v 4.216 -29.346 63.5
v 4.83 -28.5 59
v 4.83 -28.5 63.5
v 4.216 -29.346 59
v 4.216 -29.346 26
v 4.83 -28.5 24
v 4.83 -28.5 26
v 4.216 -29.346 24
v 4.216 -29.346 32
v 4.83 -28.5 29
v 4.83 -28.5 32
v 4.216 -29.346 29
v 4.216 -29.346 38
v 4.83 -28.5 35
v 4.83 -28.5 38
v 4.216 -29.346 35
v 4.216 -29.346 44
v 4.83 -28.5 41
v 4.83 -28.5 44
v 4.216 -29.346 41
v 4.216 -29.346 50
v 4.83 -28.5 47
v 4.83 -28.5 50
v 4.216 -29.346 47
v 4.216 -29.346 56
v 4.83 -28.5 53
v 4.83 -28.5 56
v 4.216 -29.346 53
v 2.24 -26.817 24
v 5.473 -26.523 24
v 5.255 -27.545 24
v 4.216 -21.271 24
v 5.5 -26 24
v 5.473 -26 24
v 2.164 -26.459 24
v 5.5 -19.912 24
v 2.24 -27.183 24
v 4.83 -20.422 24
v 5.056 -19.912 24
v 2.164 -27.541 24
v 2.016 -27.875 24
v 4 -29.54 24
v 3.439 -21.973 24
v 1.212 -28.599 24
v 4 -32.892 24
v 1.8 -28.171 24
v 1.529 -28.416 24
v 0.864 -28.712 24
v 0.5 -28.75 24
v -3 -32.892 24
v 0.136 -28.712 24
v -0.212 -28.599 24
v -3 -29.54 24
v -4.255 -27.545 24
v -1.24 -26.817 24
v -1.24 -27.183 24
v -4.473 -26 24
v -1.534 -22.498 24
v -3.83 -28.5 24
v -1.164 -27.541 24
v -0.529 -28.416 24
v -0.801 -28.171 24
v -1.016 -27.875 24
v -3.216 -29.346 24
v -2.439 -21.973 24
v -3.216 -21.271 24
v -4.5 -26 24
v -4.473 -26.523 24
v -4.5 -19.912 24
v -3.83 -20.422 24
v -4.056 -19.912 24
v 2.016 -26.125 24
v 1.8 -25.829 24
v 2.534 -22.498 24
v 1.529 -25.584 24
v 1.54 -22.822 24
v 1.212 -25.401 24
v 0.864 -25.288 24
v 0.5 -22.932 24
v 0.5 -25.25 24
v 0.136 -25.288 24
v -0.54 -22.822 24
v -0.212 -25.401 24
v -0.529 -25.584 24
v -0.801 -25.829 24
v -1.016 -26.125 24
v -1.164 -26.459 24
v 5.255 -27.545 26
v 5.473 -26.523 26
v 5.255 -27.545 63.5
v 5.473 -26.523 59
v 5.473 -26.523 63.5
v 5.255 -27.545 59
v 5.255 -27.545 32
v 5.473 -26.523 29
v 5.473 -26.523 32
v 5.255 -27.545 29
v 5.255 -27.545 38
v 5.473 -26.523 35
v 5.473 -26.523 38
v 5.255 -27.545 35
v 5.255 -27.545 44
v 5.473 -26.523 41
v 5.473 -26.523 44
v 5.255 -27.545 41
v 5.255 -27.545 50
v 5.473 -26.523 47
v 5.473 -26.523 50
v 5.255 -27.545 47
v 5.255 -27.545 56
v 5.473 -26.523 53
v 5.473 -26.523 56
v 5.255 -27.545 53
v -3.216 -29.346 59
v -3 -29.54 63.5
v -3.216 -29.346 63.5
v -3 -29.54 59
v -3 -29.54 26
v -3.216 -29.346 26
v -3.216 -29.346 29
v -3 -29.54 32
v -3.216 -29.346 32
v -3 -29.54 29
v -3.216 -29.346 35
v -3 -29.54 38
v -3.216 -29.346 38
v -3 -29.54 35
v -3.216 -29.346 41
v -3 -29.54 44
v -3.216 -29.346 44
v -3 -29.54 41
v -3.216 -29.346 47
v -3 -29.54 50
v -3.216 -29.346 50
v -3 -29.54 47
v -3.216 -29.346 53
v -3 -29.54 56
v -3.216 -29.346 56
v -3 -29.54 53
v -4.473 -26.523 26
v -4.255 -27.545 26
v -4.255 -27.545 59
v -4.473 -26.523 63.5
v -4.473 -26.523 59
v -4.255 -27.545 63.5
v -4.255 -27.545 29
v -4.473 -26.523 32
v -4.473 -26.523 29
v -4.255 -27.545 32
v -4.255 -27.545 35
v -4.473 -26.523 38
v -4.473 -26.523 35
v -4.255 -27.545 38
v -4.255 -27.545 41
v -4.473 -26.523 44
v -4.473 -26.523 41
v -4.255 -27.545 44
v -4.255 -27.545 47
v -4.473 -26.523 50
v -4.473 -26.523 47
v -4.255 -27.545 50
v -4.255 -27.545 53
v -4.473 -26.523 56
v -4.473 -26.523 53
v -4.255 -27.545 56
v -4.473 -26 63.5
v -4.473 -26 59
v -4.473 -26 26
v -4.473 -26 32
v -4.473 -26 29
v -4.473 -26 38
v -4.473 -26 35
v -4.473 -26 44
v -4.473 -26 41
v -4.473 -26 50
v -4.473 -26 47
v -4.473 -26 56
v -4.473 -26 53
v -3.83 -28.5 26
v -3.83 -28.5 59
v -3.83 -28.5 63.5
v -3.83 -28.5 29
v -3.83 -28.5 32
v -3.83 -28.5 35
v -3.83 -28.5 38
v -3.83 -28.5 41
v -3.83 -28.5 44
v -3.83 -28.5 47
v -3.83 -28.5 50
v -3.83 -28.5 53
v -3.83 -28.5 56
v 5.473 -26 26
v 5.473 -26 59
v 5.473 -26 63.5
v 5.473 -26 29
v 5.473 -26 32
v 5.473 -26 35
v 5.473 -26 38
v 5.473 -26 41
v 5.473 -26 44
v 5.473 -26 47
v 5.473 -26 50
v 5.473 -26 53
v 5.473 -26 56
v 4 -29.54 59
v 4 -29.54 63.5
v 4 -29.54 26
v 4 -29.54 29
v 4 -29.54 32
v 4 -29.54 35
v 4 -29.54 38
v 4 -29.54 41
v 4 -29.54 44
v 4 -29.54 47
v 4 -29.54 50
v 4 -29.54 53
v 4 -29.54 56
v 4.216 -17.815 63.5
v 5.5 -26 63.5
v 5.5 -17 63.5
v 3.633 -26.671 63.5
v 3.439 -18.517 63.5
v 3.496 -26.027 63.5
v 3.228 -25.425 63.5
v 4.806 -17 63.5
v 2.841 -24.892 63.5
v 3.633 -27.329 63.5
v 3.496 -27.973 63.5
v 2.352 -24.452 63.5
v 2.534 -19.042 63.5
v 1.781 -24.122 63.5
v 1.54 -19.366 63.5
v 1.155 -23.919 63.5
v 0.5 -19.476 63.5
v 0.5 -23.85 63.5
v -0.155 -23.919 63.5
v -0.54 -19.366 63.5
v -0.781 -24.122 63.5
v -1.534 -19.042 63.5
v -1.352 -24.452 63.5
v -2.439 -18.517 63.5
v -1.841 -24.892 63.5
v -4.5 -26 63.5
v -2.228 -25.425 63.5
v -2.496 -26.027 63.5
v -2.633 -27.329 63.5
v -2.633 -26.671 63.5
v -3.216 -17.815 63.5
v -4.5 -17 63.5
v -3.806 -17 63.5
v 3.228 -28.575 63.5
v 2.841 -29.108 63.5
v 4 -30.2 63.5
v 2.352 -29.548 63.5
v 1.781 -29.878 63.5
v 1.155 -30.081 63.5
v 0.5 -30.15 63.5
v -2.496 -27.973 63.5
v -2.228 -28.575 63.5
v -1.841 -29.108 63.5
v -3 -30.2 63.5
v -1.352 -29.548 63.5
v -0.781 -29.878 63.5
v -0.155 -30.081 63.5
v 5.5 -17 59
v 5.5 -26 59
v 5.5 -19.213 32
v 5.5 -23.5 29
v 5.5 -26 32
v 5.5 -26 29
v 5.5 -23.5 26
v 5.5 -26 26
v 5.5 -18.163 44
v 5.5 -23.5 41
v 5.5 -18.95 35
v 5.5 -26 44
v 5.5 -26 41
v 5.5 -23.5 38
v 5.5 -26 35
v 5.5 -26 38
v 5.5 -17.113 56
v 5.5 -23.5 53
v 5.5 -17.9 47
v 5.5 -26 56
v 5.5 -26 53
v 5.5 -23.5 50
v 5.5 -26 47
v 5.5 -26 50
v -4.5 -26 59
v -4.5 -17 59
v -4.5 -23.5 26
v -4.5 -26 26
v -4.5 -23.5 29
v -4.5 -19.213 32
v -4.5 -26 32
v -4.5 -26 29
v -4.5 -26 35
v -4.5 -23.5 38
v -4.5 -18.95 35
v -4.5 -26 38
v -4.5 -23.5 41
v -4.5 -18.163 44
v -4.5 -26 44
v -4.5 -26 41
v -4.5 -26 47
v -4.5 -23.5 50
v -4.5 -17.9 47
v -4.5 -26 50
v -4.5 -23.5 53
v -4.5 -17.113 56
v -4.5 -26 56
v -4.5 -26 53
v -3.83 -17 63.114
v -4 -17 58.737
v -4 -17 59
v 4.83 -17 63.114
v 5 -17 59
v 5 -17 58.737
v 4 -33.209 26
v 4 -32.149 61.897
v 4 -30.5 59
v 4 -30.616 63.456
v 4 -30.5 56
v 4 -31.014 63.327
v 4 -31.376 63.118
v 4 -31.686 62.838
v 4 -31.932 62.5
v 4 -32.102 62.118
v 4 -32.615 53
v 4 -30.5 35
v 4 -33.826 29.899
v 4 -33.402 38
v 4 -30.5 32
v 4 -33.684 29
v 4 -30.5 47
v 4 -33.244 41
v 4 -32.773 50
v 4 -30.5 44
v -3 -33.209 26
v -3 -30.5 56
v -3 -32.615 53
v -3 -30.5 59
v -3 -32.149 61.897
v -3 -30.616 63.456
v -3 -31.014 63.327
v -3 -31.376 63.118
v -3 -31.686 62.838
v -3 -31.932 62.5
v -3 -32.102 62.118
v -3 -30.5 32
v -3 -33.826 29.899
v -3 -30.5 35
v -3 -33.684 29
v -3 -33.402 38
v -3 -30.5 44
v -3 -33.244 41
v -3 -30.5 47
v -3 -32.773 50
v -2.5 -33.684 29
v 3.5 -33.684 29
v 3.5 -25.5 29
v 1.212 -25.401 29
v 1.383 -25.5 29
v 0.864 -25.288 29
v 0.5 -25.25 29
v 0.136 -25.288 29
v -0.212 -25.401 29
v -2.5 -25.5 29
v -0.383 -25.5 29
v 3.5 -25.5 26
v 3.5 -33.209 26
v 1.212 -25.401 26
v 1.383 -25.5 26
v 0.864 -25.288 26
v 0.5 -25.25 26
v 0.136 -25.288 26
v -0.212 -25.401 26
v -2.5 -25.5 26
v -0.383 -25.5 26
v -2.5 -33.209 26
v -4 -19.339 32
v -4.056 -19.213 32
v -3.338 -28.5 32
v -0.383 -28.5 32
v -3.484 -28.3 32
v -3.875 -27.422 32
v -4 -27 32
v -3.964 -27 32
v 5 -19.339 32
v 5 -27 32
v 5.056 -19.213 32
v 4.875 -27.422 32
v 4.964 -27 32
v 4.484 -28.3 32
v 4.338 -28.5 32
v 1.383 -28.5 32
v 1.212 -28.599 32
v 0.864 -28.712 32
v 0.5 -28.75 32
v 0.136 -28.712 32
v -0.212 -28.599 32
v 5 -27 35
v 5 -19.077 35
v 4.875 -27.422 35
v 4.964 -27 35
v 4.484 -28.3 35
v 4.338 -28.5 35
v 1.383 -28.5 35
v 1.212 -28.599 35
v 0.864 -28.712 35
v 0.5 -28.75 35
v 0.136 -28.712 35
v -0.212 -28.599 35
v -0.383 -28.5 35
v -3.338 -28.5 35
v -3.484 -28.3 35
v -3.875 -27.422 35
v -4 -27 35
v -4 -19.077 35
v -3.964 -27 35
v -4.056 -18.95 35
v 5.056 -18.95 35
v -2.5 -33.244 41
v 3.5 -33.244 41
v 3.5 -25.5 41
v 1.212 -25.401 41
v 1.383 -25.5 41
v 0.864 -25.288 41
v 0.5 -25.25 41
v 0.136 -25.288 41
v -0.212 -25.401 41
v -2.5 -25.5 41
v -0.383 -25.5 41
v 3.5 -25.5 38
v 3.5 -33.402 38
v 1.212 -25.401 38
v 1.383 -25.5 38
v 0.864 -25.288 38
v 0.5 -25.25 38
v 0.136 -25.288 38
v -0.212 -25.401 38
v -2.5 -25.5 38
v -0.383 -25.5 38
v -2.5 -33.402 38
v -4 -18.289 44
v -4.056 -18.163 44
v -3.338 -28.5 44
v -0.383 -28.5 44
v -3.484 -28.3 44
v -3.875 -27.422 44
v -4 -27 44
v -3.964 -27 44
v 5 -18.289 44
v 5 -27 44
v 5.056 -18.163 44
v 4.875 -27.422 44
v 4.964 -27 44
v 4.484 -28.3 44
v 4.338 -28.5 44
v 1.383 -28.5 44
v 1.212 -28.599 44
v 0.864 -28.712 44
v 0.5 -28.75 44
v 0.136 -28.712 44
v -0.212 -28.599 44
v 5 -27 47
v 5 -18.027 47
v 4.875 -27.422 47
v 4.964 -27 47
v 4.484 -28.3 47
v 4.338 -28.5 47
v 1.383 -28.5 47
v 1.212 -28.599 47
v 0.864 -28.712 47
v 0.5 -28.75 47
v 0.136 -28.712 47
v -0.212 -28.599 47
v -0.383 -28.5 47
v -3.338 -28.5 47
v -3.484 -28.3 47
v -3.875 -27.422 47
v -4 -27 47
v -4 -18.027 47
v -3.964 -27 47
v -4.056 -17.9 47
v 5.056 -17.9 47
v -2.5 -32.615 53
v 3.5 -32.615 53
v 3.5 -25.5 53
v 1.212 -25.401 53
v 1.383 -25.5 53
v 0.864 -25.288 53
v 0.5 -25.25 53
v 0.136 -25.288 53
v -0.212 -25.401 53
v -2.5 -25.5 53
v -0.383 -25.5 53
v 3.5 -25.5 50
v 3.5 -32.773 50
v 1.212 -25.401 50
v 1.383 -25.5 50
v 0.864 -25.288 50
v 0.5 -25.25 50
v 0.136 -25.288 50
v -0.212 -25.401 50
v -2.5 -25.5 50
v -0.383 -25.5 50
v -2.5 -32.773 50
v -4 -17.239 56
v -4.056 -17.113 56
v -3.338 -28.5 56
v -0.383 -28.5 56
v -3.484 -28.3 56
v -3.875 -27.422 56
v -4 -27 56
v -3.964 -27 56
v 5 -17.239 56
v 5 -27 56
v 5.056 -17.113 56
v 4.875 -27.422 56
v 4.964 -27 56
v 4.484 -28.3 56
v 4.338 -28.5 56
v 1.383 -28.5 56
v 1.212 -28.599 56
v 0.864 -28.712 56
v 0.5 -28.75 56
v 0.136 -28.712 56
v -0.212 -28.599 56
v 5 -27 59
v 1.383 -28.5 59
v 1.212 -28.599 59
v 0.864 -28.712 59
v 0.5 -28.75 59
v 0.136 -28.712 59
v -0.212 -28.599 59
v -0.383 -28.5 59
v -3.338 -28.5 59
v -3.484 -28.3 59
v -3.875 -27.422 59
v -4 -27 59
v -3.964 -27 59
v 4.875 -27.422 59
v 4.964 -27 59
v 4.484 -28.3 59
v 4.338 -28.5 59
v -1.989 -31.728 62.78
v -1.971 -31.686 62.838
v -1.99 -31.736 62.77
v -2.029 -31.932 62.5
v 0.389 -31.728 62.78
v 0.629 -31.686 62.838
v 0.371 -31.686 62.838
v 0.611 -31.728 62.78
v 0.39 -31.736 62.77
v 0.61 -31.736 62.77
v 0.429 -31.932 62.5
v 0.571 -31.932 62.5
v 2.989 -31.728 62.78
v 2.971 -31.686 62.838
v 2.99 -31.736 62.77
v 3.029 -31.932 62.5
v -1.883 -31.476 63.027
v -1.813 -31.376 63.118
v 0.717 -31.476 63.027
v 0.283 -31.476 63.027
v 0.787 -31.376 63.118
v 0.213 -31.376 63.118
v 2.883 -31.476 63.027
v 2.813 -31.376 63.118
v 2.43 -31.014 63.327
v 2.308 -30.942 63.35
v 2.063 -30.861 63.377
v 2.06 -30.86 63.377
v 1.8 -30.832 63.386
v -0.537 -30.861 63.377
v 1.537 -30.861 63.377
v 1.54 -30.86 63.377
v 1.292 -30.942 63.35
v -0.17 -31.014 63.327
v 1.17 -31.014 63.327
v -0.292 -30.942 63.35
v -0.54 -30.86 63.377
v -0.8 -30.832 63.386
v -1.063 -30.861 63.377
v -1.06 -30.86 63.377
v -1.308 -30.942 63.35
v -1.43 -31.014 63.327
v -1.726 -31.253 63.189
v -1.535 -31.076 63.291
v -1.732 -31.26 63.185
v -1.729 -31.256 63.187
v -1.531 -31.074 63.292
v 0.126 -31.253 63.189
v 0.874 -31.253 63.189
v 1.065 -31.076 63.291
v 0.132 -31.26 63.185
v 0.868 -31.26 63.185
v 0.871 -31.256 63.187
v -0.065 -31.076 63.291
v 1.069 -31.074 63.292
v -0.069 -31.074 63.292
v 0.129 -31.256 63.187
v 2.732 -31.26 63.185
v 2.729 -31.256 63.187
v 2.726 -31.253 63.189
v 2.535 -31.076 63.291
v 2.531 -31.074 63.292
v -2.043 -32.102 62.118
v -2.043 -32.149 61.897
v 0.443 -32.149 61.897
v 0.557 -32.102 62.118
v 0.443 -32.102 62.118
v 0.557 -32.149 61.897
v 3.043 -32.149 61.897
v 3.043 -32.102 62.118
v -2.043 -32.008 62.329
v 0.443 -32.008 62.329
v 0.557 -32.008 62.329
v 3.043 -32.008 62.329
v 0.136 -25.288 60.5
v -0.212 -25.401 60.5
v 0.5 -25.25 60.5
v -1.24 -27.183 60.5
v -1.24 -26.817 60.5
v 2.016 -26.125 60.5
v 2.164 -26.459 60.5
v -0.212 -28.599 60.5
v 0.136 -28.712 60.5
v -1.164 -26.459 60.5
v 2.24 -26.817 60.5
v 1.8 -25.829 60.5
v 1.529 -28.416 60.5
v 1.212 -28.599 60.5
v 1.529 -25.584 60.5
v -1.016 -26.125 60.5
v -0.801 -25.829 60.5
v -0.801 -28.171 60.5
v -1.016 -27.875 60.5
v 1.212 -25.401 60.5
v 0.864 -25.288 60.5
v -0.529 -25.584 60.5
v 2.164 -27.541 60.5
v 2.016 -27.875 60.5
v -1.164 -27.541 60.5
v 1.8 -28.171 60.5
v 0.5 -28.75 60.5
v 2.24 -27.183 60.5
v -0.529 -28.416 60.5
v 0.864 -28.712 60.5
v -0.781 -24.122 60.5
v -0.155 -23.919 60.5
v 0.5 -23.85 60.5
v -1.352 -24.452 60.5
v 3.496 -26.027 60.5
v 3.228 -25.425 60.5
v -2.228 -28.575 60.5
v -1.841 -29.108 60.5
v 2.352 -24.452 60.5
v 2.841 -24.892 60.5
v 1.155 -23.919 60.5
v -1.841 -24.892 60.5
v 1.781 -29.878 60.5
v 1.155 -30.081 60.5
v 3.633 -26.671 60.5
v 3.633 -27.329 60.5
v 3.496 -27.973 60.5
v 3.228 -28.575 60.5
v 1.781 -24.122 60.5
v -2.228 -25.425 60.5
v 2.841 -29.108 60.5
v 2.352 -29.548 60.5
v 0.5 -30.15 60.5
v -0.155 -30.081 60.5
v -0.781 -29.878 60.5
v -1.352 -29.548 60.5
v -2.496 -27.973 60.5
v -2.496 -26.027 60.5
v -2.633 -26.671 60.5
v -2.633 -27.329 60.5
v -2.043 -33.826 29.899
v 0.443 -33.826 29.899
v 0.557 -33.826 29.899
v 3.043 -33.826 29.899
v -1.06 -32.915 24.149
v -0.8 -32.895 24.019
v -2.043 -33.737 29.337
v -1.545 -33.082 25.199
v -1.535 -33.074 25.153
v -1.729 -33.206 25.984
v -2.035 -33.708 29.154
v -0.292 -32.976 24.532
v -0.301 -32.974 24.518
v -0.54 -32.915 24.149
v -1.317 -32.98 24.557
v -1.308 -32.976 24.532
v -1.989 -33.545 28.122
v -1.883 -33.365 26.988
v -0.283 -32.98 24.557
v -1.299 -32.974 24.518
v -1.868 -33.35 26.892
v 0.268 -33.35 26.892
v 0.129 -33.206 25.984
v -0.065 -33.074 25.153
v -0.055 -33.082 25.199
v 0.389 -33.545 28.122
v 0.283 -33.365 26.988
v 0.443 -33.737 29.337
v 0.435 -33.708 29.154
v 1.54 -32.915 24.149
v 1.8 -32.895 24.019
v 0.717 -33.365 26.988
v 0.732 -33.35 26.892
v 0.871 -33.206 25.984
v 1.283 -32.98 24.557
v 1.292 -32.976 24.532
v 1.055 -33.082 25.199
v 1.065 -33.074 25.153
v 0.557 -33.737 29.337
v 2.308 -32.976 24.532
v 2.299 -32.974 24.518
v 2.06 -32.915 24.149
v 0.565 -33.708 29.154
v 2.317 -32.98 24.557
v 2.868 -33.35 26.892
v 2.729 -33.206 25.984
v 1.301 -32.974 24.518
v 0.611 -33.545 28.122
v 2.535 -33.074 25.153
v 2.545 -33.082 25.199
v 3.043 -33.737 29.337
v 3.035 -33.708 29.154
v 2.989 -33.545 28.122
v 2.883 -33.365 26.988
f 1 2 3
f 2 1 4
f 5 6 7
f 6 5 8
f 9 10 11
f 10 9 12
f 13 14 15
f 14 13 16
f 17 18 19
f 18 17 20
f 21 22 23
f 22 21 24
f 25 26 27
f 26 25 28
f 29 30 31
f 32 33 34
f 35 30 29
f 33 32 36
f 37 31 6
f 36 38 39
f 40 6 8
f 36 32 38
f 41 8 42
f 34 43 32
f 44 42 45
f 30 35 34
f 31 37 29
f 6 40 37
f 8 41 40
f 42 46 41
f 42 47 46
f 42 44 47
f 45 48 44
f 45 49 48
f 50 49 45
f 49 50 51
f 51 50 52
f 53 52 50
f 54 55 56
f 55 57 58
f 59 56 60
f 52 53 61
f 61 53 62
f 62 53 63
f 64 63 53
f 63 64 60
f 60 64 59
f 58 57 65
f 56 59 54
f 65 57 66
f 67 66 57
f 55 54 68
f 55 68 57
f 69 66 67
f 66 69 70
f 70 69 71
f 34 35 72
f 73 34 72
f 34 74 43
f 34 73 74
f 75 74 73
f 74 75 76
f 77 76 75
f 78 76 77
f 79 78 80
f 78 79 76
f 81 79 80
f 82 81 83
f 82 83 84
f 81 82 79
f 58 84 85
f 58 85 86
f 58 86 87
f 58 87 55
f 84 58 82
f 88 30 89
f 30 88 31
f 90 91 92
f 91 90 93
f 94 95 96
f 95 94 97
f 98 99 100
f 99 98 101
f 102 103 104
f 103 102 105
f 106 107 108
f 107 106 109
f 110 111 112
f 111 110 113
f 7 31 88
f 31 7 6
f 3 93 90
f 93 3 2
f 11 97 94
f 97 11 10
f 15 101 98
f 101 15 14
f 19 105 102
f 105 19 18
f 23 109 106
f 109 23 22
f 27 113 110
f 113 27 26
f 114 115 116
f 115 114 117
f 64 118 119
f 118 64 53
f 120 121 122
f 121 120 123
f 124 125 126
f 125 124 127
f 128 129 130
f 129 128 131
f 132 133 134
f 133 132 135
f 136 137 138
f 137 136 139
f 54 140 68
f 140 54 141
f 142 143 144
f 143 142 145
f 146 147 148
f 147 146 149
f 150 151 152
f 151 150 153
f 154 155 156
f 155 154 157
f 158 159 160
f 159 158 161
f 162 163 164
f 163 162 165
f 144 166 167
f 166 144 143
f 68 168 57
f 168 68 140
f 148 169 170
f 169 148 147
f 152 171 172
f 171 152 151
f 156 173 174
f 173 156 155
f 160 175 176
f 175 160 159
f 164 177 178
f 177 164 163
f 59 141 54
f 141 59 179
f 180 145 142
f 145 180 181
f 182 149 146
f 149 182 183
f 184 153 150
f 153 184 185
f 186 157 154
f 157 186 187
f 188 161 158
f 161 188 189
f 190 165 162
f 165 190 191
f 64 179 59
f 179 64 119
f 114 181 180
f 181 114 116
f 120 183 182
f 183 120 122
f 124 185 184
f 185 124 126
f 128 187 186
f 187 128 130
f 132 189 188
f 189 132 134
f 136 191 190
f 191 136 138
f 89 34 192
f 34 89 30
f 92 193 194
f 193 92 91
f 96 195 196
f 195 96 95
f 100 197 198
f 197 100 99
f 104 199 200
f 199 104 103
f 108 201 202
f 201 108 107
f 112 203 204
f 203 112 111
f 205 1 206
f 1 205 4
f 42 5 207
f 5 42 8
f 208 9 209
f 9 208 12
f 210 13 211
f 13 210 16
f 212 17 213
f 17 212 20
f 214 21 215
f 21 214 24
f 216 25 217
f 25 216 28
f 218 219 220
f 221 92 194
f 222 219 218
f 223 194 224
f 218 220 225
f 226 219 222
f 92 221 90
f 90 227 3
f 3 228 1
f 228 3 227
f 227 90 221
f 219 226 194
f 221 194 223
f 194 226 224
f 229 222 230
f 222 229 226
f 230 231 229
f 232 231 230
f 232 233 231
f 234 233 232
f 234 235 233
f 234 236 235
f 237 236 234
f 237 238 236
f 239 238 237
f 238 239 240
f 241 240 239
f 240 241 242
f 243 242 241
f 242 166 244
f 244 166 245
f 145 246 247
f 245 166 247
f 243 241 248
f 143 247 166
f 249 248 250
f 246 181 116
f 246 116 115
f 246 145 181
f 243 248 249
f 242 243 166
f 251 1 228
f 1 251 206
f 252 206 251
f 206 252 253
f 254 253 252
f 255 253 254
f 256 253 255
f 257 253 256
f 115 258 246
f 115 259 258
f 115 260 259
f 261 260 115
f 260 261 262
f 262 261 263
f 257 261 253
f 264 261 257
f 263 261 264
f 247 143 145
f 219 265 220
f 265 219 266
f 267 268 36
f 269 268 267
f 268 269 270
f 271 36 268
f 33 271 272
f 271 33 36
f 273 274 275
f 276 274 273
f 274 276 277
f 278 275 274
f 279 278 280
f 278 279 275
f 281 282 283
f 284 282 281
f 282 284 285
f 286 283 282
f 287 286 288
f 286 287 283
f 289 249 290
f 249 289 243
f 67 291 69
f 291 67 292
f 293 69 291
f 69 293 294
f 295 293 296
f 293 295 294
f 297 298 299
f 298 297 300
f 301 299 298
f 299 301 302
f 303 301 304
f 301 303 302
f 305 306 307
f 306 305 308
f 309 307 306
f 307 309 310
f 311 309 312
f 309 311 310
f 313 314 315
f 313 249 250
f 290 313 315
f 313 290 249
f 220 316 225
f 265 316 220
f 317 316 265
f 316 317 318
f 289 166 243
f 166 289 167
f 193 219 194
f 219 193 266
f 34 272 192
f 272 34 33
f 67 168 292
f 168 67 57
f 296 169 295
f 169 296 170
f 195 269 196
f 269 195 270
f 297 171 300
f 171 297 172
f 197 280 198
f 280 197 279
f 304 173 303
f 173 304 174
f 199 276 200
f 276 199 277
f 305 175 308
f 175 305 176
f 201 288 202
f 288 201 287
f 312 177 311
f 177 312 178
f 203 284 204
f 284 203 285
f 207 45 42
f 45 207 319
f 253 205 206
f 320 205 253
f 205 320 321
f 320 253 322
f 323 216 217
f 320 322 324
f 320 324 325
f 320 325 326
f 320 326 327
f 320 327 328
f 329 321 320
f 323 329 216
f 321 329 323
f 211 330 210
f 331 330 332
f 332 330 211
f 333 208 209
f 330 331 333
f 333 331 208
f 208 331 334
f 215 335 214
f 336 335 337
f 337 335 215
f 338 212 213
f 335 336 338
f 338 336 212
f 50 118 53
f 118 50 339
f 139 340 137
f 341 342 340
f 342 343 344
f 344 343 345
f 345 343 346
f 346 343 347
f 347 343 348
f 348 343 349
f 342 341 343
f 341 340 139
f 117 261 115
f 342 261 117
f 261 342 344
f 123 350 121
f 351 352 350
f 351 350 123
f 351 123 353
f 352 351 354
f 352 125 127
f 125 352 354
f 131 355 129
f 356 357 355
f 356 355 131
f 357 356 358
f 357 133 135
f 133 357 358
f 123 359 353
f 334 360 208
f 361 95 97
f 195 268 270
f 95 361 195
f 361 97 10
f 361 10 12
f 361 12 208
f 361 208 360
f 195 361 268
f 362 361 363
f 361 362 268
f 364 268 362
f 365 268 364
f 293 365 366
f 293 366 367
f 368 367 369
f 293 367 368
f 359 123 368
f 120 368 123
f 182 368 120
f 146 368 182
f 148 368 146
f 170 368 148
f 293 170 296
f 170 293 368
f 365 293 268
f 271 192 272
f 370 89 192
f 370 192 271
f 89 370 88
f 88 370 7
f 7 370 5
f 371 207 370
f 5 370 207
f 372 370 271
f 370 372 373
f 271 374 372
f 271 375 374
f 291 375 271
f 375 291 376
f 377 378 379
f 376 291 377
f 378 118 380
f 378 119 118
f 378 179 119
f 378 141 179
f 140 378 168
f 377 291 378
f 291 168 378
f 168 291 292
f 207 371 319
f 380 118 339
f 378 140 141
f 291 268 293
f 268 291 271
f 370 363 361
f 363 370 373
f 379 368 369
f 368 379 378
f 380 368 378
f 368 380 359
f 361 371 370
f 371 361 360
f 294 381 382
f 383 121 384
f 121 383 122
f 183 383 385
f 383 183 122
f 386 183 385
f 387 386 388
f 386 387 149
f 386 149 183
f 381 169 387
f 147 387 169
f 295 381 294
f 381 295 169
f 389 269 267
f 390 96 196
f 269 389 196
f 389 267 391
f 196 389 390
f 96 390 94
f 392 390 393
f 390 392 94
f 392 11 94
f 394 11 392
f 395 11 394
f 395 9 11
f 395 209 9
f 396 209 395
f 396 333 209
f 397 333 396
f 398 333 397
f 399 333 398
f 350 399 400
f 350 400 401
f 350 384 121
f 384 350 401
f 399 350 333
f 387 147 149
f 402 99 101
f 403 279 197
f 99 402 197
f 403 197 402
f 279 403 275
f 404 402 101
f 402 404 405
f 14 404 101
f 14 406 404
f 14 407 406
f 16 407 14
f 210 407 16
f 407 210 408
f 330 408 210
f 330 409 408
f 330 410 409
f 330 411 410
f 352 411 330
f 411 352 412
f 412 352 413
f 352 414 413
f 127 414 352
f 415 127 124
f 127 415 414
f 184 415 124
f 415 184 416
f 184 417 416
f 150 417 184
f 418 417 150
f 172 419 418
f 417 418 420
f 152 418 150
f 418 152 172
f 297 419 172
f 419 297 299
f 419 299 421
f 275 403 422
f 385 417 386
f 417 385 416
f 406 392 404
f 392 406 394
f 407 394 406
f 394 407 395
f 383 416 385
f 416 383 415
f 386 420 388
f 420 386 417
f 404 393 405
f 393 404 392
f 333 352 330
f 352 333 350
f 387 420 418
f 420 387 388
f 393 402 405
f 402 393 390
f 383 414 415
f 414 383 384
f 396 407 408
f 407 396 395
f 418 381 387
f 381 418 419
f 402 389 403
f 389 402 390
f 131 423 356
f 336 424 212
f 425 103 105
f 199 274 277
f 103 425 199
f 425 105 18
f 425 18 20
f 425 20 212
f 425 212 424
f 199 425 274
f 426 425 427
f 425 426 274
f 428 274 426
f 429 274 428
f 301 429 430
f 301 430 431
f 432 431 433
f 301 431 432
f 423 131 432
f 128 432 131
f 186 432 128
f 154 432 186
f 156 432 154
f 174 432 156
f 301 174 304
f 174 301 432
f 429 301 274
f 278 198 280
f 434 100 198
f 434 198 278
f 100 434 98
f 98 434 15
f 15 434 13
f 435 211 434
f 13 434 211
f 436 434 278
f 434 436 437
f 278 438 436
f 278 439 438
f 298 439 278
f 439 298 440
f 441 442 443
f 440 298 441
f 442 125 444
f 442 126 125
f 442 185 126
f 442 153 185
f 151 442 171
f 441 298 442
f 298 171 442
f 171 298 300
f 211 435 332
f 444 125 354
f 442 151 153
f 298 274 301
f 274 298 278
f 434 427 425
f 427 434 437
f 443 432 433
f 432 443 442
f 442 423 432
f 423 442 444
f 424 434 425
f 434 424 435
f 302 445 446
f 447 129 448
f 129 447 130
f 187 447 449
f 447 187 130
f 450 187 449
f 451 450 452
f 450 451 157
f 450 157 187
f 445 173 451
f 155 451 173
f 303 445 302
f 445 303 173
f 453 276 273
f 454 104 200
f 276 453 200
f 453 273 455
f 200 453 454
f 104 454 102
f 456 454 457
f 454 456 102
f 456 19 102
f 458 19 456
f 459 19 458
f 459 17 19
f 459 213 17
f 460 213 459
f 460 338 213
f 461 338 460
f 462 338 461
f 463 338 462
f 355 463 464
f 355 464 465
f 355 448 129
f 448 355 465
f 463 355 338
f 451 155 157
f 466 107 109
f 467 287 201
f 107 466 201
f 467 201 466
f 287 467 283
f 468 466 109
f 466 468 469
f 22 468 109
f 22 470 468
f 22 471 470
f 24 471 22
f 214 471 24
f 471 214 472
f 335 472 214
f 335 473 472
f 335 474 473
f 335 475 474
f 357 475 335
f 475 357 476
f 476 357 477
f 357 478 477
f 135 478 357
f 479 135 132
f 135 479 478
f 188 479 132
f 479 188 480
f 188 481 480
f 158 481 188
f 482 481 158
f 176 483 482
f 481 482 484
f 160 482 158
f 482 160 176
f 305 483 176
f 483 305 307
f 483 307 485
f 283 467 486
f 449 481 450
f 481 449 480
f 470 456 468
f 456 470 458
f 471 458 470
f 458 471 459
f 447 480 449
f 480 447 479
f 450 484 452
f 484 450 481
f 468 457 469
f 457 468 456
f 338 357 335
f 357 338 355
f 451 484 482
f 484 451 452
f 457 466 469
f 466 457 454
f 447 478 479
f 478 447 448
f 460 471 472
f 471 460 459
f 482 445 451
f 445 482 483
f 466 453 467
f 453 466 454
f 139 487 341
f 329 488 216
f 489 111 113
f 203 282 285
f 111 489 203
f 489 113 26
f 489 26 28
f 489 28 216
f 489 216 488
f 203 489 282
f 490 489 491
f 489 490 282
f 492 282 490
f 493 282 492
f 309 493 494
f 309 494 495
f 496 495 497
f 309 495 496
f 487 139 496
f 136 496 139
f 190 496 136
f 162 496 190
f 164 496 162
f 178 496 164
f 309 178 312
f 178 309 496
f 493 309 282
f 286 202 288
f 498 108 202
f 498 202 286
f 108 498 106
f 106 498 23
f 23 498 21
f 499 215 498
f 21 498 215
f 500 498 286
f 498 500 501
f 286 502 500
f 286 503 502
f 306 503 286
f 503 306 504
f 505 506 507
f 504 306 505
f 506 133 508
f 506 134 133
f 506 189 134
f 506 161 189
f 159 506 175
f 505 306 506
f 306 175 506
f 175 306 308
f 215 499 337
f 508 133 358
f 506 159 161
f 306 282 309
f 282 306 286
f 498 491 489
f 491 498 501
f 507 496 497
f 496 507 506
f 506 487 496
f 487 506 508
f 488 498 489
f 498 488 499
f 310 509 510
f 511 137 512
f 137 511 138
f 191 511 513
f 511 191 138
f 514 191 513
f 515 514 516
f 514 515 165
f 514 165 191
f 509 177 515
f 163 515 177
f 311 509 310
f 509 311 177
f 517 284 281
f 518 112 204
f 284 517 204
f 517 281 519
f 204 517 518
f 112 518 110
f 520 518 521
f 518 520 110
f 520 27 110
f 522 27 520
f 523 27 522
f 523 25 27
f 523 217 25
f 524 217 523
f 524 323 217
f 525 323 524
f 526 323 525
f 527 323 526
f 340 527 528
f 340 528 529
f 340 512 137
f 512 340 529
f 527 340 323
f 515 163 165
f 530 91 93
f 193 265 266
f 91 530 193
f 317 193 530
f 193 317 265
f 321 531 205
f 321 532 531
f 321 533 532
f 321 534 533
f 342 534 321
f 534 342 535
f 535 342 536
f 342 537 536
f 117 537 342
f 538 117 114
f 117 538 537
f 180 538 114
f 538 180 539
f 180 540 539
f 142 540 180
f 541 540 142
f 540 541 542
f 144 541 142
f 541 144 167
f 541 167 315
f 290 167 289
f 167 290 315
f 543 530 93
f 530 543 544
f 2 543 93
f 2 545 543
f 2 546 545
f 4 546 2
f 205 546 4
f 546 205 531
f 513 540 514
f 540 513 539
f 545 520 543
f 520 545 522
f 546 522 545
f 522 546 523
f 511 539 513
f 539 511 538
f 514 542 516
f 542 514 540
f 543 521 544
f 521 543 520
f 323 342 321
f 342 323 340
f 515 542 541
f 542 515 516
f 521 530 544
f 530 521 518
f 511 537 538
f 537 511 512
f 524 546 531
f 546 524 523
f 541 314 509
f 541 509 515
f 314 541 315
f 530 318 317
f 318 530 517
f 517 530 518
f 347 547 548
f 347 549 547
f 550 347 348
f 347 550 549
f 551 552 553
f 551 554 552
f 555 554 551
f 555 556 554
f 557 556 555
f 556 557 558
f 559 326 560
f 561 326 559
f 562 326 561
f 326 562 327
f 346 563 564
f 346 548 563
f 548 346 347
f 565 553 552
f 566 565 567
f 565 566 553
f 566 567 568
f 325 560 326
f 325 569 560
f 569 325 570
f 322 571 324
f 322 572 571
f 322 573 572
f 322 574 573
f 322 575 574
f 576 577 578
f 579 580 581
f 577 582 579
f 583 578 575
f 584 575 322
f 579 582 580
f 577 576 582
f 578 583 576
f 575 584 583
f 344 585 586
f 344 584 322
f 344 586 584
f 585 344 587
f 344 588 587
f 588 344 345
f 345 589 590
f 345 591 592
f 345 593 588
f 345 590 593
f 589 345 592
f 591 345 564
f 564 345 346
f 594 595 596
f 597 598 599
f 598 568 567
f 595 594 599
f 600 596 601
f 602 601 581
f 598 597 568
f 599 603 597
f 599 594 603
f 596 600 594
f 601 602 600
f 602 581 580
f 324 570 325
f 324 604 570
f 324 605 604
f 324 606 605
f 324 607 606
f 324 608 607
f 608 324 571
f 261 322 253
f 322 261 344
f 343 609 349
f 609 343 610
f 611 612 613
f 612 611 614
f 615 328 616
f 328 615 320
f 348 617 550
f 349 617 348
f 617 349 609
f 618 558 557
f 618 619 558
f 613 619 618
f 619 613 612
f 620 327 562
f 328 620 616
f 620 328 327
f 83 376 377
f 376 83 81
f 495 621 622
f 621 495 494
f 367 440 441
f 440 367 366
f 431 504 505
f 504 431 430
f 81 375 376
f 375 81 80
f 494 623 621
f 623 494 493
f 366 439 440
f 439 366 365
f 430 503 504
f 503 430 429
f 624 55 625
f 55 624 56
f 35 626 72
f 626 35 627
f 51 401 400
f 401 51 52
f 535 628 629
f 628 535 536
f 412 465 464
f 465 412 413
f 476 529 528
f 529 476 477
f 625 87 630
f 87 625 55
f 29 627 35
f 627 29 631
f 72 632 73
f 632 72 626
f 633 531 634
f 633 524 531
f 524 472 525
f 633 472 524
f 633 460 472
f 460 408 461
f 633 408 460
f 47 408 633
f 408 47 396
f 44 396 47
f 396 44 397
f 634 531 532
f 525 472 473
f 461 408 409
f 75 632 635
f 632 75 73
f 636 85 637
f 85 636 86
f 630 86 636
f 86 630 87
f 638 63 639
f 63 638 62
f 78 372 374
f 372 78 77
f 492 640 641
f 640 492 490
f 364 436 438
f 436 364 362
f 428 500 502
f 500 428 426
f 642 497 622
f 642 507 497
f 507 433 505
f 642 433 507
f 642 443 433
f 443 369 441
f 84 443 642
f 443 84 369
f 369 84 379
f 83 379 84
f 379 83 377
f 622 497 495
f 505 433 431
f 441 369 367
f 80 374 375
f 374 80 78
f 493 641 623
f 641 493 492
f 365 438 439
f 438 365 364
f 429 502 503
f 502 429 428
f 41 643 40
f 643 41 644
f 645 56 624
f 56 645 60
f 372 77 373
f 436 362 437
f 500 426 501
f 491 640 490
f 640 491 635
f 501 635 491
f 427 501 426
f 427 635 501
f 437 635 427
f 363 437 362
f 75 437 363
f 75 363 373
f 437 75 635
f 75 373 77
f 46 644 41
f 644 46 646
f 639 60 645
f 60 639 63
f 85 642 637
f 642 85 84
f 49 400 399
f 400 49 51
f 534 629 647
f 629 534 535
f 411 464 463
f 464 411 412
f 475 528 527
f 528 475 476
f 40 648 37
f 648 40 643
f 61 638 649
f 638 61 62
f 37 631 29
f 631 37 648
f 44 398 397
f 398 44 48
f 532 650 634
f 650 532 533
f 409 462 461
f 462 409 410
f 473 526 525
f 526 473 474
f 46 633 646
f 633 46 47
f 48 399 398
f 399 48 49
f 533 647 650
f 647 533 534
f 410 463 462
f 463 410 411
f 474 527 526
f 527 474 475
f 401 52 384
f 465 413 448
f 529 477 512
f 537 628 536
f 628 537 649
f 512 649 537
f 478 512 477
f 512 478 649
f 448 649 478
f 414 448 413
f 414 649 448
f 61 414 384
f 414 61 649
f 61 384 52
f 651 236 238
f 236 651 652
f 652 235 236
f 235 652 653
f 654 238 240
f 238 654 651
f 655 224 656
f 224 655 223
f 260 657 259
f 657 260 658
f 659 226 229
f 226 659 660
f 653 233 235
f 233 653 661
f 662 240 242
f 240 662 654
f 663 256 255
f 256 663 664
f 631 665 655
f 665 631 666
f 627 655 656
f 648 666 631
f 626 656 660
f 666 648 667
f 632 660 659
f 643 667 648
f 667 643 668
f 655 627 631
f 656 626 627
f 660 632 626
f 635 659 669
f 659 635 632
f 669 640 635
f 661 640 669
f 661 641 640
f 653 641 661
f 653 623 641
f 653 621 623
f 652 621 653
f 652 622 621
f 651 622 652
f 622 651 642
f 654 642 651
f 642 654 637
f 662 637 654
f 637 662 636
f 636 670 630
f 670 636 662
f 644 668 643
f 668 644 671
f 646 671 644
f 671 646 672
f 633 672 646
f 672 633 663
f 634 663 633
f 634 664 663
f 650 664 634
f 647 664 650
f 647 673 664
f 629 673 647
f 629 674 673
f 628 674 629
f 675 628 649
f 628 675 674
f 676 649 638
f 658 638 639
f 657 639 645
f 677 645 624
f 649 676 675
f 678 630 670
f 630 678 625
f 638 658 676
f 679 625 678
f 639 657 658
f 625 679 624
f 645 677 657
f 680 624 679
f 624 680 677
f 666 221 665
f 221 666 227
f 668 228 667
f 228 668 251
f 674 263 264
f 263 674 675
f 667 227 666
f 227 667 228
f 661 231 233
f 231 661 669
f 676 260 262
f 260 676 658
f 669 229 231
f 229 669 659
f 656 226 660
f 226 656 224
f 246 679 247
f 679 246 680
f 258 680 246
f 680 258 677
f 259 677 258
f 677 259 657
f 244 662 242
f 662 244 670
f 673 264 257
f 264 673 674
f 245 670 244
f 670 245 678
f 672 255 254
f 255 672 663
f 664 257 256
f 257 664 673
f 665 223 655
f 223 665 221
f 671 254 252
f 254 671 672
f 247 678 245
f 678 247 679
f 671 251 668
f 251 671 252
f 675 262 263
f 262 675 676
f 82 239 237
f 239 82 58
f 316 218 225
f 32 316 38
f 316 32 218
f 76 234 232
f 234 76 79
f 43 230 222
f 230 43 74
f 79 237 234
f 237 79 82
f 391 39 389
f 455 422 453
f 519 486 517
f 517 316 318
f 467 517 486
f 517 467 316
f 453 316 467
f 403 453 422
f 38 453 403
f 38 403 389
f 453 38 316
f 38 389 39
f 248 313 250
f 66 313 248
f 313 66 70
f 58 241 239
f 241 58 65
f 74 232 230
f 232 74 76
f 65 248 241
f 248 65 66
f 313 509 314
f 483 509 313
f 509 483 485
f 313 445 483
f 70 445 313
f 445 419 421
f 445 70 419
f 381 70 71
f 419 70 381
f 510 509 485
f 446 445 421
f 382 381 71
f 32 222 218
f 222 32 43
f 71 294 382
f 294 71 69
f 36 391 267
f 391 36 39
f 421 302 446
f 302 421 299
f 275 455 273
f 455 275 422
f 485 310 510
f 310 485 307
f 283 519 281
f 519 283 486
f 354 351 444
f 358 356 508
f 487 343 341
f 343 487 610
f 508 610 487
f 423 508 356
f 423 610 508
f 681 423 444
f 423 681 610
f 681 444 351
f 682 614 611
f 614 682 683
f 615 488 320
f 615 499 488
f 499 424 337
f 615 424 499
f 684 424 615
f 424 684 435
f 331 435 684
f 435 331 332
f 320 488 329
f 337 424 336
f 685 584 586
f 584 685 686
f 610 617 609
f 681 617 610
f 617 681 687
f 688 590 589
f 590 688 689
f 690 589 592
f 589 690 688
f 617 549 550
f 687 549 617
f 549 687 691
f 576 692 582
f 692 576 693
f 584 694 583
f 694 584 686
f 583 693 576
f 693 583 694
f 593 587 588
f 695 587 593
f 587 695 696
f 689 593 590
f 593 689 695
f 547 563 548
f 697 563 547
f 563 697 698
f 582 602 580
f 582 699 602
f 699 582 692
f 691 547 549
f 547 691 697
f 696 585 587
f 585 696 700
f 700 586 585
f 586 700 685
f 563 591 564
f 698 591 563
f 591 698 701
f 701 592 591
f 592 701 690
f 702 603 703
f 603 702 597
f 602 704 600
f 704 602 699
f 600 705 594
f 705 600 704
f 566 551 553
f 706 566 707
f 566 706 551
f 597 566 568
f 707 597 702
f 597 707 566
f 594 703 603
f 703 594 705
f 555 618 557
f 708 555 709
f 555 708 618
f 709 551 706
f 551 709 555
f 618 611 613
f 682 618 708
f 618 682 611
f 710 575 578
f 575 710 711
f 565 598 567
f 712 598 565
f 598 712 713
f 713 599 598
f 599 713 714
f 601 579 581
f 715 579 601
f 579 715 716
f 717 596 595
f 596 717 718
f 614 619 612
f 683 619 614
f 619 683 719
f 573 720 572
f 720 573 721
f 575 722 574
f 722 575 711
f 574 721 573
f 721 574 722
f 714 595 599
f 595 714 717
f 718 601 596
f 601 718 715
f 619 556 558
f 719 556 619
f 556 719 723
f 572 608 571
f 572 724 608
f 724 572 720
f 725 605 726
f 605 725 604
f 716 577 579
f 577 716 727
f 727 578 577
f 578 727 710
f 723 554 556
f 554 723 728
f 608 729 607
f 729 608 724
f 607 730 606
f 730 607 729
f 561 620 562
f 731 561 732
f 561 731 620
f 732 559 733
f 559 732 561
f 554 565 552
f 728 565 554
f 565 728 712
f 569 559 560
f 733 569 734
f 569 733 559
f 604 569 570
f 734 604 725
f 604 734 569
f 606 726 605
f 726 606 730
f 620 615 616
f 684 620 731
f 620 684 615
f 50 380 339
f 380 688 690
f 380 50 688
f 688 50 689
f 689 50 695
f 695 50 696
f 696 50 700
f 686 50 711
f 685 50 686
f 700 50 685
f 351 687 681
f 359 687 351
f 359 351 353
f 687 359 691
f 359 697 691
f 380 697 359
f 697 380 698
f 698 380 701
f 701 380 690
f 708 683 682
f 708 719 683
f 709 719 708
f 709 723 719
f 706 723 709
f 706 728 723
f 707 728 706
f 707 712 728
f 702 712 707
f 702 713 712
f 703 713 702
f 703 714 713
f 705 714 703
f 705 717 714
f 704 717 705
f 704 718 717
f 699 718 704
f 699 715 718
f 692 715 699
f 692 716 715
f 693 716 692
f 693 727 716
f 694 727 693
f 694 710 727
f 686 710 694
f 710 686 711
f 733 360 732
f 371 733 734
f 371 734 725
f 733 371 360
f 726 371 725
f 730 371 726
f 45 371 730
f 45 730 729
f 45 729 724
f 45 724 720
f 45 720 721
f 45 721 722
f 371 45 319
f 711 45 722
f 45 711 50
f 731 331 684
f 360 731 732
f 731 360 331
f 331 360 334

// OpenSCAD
// PRUSA iteration4
// cable holder
// GNU GPL v3
// Josef Průša <iam@josefprusa.cz> and contributors
// http://www.reprap.org/wiki/Prusa_Mendel
// http://prusamendel.org


module zip_main()
{
    // ziptie cut for upper cables

    translate([-10,-30.5,24]) cube([20,2,3]);
    translate([-6,-30.5,24]) cube([2,20,3]);
    translate([5,-30.5,24]) cube([2,20,3]);

    difference()
    {
        translate([0.5,-26,24]) rotate([0,0,90]) cylinder( h=3, r=6, $fn=30 );
        translate([0.5,-26,23]) rotate([0,0,90]) cylinder( h=5, r=4.6, $fn=30 );
        translate([-10,-35.5,23]) cube([20,5,5]);
        translate([-10,-27,23]) cube([20,10,5]);
    }
}


module zip_ext_cables()
{
    // ziptie cut for lower cables

    translate([-10,-25.5,24]) cube([20,2,3]);
    translate([-4.5,-45.5,24]) cube([2,20,3]);
    translate([3.5,-45.5,24]) cube([2,20,3]);
}


module cable_holder()
{
    difference()
    {
        union()
        {
            // base block
            translate([0.5,-26,24]) rotate([0,0,90]) cylinder( h=39.5, r=5, $fn=30 );
            translate([-4.5,-26,24]) cube([10,9,39.5]);
            translate([-3,-35,24]) cube([7,10,39.5]);
        }

        // screw
        translate([0.5,-27,19.5]) rotate([0,0,90]) cylinder( h=42, r=1.75, $fn=30 );
        translate([0.5,-27,19.5+41]) rotate([0,0,90]) cylinder( h=5, r=3.15, $fn=30 );

        // upper cables cut
        translate([0.5,-18,23]) rotate([0,5,90]) cylinder( h=41, r=5, $fn=30 );
        translate([-10,-20,23]) rotate([-5,0,0]) cube([20,9,45]);

        // lower angled cut
        translate([-10,-43.2,23]) rotate([-3,0,0]) cube([20,9,45]);

        // wires
        translate([-0.8,-34.2,23]) rotate([0,3,90]) cylinder( h=41, r=1.25, $fn=30 );
        translate([1.8,-34.2,23]) rotate([0,3,90]) cylinder( h=41, r=1.25, $fn=30 );

        translate([-4.4, -34.6, 22]) rotate([9, 0, 0]) cube([10,2,12]);


        // ziptie openings
        translate([0,0,2]) zip_ext_cables();
        translate([0,0,8]) zip_main();
        translate([0,0,14]) zip_ext_cables();
        translate([0,0,20]) zip_main();
        translate([0,0,26]) zip_ext_cables();
        translate([0,0,32]) zip_main();

        // round edge cut
        translate([0,1.8,-1.5])
        difference()
        {
            translate([-10,-32,63]) rotate([0,90,0]) cylinder( h=41, r=4, $fn=30 );
            translate([-10,-32,63]) rotate([0,90,0]) cylinder( h=41, r=2, $fn=30 );
            translate([-10,-36,53]) rotate([0,0,0]) cube([20,9,10]);
            translate([-10,-32,58]) rotate([0,0,0]) cube([20,9,10]);
        }

    }
}

cable_holder();
